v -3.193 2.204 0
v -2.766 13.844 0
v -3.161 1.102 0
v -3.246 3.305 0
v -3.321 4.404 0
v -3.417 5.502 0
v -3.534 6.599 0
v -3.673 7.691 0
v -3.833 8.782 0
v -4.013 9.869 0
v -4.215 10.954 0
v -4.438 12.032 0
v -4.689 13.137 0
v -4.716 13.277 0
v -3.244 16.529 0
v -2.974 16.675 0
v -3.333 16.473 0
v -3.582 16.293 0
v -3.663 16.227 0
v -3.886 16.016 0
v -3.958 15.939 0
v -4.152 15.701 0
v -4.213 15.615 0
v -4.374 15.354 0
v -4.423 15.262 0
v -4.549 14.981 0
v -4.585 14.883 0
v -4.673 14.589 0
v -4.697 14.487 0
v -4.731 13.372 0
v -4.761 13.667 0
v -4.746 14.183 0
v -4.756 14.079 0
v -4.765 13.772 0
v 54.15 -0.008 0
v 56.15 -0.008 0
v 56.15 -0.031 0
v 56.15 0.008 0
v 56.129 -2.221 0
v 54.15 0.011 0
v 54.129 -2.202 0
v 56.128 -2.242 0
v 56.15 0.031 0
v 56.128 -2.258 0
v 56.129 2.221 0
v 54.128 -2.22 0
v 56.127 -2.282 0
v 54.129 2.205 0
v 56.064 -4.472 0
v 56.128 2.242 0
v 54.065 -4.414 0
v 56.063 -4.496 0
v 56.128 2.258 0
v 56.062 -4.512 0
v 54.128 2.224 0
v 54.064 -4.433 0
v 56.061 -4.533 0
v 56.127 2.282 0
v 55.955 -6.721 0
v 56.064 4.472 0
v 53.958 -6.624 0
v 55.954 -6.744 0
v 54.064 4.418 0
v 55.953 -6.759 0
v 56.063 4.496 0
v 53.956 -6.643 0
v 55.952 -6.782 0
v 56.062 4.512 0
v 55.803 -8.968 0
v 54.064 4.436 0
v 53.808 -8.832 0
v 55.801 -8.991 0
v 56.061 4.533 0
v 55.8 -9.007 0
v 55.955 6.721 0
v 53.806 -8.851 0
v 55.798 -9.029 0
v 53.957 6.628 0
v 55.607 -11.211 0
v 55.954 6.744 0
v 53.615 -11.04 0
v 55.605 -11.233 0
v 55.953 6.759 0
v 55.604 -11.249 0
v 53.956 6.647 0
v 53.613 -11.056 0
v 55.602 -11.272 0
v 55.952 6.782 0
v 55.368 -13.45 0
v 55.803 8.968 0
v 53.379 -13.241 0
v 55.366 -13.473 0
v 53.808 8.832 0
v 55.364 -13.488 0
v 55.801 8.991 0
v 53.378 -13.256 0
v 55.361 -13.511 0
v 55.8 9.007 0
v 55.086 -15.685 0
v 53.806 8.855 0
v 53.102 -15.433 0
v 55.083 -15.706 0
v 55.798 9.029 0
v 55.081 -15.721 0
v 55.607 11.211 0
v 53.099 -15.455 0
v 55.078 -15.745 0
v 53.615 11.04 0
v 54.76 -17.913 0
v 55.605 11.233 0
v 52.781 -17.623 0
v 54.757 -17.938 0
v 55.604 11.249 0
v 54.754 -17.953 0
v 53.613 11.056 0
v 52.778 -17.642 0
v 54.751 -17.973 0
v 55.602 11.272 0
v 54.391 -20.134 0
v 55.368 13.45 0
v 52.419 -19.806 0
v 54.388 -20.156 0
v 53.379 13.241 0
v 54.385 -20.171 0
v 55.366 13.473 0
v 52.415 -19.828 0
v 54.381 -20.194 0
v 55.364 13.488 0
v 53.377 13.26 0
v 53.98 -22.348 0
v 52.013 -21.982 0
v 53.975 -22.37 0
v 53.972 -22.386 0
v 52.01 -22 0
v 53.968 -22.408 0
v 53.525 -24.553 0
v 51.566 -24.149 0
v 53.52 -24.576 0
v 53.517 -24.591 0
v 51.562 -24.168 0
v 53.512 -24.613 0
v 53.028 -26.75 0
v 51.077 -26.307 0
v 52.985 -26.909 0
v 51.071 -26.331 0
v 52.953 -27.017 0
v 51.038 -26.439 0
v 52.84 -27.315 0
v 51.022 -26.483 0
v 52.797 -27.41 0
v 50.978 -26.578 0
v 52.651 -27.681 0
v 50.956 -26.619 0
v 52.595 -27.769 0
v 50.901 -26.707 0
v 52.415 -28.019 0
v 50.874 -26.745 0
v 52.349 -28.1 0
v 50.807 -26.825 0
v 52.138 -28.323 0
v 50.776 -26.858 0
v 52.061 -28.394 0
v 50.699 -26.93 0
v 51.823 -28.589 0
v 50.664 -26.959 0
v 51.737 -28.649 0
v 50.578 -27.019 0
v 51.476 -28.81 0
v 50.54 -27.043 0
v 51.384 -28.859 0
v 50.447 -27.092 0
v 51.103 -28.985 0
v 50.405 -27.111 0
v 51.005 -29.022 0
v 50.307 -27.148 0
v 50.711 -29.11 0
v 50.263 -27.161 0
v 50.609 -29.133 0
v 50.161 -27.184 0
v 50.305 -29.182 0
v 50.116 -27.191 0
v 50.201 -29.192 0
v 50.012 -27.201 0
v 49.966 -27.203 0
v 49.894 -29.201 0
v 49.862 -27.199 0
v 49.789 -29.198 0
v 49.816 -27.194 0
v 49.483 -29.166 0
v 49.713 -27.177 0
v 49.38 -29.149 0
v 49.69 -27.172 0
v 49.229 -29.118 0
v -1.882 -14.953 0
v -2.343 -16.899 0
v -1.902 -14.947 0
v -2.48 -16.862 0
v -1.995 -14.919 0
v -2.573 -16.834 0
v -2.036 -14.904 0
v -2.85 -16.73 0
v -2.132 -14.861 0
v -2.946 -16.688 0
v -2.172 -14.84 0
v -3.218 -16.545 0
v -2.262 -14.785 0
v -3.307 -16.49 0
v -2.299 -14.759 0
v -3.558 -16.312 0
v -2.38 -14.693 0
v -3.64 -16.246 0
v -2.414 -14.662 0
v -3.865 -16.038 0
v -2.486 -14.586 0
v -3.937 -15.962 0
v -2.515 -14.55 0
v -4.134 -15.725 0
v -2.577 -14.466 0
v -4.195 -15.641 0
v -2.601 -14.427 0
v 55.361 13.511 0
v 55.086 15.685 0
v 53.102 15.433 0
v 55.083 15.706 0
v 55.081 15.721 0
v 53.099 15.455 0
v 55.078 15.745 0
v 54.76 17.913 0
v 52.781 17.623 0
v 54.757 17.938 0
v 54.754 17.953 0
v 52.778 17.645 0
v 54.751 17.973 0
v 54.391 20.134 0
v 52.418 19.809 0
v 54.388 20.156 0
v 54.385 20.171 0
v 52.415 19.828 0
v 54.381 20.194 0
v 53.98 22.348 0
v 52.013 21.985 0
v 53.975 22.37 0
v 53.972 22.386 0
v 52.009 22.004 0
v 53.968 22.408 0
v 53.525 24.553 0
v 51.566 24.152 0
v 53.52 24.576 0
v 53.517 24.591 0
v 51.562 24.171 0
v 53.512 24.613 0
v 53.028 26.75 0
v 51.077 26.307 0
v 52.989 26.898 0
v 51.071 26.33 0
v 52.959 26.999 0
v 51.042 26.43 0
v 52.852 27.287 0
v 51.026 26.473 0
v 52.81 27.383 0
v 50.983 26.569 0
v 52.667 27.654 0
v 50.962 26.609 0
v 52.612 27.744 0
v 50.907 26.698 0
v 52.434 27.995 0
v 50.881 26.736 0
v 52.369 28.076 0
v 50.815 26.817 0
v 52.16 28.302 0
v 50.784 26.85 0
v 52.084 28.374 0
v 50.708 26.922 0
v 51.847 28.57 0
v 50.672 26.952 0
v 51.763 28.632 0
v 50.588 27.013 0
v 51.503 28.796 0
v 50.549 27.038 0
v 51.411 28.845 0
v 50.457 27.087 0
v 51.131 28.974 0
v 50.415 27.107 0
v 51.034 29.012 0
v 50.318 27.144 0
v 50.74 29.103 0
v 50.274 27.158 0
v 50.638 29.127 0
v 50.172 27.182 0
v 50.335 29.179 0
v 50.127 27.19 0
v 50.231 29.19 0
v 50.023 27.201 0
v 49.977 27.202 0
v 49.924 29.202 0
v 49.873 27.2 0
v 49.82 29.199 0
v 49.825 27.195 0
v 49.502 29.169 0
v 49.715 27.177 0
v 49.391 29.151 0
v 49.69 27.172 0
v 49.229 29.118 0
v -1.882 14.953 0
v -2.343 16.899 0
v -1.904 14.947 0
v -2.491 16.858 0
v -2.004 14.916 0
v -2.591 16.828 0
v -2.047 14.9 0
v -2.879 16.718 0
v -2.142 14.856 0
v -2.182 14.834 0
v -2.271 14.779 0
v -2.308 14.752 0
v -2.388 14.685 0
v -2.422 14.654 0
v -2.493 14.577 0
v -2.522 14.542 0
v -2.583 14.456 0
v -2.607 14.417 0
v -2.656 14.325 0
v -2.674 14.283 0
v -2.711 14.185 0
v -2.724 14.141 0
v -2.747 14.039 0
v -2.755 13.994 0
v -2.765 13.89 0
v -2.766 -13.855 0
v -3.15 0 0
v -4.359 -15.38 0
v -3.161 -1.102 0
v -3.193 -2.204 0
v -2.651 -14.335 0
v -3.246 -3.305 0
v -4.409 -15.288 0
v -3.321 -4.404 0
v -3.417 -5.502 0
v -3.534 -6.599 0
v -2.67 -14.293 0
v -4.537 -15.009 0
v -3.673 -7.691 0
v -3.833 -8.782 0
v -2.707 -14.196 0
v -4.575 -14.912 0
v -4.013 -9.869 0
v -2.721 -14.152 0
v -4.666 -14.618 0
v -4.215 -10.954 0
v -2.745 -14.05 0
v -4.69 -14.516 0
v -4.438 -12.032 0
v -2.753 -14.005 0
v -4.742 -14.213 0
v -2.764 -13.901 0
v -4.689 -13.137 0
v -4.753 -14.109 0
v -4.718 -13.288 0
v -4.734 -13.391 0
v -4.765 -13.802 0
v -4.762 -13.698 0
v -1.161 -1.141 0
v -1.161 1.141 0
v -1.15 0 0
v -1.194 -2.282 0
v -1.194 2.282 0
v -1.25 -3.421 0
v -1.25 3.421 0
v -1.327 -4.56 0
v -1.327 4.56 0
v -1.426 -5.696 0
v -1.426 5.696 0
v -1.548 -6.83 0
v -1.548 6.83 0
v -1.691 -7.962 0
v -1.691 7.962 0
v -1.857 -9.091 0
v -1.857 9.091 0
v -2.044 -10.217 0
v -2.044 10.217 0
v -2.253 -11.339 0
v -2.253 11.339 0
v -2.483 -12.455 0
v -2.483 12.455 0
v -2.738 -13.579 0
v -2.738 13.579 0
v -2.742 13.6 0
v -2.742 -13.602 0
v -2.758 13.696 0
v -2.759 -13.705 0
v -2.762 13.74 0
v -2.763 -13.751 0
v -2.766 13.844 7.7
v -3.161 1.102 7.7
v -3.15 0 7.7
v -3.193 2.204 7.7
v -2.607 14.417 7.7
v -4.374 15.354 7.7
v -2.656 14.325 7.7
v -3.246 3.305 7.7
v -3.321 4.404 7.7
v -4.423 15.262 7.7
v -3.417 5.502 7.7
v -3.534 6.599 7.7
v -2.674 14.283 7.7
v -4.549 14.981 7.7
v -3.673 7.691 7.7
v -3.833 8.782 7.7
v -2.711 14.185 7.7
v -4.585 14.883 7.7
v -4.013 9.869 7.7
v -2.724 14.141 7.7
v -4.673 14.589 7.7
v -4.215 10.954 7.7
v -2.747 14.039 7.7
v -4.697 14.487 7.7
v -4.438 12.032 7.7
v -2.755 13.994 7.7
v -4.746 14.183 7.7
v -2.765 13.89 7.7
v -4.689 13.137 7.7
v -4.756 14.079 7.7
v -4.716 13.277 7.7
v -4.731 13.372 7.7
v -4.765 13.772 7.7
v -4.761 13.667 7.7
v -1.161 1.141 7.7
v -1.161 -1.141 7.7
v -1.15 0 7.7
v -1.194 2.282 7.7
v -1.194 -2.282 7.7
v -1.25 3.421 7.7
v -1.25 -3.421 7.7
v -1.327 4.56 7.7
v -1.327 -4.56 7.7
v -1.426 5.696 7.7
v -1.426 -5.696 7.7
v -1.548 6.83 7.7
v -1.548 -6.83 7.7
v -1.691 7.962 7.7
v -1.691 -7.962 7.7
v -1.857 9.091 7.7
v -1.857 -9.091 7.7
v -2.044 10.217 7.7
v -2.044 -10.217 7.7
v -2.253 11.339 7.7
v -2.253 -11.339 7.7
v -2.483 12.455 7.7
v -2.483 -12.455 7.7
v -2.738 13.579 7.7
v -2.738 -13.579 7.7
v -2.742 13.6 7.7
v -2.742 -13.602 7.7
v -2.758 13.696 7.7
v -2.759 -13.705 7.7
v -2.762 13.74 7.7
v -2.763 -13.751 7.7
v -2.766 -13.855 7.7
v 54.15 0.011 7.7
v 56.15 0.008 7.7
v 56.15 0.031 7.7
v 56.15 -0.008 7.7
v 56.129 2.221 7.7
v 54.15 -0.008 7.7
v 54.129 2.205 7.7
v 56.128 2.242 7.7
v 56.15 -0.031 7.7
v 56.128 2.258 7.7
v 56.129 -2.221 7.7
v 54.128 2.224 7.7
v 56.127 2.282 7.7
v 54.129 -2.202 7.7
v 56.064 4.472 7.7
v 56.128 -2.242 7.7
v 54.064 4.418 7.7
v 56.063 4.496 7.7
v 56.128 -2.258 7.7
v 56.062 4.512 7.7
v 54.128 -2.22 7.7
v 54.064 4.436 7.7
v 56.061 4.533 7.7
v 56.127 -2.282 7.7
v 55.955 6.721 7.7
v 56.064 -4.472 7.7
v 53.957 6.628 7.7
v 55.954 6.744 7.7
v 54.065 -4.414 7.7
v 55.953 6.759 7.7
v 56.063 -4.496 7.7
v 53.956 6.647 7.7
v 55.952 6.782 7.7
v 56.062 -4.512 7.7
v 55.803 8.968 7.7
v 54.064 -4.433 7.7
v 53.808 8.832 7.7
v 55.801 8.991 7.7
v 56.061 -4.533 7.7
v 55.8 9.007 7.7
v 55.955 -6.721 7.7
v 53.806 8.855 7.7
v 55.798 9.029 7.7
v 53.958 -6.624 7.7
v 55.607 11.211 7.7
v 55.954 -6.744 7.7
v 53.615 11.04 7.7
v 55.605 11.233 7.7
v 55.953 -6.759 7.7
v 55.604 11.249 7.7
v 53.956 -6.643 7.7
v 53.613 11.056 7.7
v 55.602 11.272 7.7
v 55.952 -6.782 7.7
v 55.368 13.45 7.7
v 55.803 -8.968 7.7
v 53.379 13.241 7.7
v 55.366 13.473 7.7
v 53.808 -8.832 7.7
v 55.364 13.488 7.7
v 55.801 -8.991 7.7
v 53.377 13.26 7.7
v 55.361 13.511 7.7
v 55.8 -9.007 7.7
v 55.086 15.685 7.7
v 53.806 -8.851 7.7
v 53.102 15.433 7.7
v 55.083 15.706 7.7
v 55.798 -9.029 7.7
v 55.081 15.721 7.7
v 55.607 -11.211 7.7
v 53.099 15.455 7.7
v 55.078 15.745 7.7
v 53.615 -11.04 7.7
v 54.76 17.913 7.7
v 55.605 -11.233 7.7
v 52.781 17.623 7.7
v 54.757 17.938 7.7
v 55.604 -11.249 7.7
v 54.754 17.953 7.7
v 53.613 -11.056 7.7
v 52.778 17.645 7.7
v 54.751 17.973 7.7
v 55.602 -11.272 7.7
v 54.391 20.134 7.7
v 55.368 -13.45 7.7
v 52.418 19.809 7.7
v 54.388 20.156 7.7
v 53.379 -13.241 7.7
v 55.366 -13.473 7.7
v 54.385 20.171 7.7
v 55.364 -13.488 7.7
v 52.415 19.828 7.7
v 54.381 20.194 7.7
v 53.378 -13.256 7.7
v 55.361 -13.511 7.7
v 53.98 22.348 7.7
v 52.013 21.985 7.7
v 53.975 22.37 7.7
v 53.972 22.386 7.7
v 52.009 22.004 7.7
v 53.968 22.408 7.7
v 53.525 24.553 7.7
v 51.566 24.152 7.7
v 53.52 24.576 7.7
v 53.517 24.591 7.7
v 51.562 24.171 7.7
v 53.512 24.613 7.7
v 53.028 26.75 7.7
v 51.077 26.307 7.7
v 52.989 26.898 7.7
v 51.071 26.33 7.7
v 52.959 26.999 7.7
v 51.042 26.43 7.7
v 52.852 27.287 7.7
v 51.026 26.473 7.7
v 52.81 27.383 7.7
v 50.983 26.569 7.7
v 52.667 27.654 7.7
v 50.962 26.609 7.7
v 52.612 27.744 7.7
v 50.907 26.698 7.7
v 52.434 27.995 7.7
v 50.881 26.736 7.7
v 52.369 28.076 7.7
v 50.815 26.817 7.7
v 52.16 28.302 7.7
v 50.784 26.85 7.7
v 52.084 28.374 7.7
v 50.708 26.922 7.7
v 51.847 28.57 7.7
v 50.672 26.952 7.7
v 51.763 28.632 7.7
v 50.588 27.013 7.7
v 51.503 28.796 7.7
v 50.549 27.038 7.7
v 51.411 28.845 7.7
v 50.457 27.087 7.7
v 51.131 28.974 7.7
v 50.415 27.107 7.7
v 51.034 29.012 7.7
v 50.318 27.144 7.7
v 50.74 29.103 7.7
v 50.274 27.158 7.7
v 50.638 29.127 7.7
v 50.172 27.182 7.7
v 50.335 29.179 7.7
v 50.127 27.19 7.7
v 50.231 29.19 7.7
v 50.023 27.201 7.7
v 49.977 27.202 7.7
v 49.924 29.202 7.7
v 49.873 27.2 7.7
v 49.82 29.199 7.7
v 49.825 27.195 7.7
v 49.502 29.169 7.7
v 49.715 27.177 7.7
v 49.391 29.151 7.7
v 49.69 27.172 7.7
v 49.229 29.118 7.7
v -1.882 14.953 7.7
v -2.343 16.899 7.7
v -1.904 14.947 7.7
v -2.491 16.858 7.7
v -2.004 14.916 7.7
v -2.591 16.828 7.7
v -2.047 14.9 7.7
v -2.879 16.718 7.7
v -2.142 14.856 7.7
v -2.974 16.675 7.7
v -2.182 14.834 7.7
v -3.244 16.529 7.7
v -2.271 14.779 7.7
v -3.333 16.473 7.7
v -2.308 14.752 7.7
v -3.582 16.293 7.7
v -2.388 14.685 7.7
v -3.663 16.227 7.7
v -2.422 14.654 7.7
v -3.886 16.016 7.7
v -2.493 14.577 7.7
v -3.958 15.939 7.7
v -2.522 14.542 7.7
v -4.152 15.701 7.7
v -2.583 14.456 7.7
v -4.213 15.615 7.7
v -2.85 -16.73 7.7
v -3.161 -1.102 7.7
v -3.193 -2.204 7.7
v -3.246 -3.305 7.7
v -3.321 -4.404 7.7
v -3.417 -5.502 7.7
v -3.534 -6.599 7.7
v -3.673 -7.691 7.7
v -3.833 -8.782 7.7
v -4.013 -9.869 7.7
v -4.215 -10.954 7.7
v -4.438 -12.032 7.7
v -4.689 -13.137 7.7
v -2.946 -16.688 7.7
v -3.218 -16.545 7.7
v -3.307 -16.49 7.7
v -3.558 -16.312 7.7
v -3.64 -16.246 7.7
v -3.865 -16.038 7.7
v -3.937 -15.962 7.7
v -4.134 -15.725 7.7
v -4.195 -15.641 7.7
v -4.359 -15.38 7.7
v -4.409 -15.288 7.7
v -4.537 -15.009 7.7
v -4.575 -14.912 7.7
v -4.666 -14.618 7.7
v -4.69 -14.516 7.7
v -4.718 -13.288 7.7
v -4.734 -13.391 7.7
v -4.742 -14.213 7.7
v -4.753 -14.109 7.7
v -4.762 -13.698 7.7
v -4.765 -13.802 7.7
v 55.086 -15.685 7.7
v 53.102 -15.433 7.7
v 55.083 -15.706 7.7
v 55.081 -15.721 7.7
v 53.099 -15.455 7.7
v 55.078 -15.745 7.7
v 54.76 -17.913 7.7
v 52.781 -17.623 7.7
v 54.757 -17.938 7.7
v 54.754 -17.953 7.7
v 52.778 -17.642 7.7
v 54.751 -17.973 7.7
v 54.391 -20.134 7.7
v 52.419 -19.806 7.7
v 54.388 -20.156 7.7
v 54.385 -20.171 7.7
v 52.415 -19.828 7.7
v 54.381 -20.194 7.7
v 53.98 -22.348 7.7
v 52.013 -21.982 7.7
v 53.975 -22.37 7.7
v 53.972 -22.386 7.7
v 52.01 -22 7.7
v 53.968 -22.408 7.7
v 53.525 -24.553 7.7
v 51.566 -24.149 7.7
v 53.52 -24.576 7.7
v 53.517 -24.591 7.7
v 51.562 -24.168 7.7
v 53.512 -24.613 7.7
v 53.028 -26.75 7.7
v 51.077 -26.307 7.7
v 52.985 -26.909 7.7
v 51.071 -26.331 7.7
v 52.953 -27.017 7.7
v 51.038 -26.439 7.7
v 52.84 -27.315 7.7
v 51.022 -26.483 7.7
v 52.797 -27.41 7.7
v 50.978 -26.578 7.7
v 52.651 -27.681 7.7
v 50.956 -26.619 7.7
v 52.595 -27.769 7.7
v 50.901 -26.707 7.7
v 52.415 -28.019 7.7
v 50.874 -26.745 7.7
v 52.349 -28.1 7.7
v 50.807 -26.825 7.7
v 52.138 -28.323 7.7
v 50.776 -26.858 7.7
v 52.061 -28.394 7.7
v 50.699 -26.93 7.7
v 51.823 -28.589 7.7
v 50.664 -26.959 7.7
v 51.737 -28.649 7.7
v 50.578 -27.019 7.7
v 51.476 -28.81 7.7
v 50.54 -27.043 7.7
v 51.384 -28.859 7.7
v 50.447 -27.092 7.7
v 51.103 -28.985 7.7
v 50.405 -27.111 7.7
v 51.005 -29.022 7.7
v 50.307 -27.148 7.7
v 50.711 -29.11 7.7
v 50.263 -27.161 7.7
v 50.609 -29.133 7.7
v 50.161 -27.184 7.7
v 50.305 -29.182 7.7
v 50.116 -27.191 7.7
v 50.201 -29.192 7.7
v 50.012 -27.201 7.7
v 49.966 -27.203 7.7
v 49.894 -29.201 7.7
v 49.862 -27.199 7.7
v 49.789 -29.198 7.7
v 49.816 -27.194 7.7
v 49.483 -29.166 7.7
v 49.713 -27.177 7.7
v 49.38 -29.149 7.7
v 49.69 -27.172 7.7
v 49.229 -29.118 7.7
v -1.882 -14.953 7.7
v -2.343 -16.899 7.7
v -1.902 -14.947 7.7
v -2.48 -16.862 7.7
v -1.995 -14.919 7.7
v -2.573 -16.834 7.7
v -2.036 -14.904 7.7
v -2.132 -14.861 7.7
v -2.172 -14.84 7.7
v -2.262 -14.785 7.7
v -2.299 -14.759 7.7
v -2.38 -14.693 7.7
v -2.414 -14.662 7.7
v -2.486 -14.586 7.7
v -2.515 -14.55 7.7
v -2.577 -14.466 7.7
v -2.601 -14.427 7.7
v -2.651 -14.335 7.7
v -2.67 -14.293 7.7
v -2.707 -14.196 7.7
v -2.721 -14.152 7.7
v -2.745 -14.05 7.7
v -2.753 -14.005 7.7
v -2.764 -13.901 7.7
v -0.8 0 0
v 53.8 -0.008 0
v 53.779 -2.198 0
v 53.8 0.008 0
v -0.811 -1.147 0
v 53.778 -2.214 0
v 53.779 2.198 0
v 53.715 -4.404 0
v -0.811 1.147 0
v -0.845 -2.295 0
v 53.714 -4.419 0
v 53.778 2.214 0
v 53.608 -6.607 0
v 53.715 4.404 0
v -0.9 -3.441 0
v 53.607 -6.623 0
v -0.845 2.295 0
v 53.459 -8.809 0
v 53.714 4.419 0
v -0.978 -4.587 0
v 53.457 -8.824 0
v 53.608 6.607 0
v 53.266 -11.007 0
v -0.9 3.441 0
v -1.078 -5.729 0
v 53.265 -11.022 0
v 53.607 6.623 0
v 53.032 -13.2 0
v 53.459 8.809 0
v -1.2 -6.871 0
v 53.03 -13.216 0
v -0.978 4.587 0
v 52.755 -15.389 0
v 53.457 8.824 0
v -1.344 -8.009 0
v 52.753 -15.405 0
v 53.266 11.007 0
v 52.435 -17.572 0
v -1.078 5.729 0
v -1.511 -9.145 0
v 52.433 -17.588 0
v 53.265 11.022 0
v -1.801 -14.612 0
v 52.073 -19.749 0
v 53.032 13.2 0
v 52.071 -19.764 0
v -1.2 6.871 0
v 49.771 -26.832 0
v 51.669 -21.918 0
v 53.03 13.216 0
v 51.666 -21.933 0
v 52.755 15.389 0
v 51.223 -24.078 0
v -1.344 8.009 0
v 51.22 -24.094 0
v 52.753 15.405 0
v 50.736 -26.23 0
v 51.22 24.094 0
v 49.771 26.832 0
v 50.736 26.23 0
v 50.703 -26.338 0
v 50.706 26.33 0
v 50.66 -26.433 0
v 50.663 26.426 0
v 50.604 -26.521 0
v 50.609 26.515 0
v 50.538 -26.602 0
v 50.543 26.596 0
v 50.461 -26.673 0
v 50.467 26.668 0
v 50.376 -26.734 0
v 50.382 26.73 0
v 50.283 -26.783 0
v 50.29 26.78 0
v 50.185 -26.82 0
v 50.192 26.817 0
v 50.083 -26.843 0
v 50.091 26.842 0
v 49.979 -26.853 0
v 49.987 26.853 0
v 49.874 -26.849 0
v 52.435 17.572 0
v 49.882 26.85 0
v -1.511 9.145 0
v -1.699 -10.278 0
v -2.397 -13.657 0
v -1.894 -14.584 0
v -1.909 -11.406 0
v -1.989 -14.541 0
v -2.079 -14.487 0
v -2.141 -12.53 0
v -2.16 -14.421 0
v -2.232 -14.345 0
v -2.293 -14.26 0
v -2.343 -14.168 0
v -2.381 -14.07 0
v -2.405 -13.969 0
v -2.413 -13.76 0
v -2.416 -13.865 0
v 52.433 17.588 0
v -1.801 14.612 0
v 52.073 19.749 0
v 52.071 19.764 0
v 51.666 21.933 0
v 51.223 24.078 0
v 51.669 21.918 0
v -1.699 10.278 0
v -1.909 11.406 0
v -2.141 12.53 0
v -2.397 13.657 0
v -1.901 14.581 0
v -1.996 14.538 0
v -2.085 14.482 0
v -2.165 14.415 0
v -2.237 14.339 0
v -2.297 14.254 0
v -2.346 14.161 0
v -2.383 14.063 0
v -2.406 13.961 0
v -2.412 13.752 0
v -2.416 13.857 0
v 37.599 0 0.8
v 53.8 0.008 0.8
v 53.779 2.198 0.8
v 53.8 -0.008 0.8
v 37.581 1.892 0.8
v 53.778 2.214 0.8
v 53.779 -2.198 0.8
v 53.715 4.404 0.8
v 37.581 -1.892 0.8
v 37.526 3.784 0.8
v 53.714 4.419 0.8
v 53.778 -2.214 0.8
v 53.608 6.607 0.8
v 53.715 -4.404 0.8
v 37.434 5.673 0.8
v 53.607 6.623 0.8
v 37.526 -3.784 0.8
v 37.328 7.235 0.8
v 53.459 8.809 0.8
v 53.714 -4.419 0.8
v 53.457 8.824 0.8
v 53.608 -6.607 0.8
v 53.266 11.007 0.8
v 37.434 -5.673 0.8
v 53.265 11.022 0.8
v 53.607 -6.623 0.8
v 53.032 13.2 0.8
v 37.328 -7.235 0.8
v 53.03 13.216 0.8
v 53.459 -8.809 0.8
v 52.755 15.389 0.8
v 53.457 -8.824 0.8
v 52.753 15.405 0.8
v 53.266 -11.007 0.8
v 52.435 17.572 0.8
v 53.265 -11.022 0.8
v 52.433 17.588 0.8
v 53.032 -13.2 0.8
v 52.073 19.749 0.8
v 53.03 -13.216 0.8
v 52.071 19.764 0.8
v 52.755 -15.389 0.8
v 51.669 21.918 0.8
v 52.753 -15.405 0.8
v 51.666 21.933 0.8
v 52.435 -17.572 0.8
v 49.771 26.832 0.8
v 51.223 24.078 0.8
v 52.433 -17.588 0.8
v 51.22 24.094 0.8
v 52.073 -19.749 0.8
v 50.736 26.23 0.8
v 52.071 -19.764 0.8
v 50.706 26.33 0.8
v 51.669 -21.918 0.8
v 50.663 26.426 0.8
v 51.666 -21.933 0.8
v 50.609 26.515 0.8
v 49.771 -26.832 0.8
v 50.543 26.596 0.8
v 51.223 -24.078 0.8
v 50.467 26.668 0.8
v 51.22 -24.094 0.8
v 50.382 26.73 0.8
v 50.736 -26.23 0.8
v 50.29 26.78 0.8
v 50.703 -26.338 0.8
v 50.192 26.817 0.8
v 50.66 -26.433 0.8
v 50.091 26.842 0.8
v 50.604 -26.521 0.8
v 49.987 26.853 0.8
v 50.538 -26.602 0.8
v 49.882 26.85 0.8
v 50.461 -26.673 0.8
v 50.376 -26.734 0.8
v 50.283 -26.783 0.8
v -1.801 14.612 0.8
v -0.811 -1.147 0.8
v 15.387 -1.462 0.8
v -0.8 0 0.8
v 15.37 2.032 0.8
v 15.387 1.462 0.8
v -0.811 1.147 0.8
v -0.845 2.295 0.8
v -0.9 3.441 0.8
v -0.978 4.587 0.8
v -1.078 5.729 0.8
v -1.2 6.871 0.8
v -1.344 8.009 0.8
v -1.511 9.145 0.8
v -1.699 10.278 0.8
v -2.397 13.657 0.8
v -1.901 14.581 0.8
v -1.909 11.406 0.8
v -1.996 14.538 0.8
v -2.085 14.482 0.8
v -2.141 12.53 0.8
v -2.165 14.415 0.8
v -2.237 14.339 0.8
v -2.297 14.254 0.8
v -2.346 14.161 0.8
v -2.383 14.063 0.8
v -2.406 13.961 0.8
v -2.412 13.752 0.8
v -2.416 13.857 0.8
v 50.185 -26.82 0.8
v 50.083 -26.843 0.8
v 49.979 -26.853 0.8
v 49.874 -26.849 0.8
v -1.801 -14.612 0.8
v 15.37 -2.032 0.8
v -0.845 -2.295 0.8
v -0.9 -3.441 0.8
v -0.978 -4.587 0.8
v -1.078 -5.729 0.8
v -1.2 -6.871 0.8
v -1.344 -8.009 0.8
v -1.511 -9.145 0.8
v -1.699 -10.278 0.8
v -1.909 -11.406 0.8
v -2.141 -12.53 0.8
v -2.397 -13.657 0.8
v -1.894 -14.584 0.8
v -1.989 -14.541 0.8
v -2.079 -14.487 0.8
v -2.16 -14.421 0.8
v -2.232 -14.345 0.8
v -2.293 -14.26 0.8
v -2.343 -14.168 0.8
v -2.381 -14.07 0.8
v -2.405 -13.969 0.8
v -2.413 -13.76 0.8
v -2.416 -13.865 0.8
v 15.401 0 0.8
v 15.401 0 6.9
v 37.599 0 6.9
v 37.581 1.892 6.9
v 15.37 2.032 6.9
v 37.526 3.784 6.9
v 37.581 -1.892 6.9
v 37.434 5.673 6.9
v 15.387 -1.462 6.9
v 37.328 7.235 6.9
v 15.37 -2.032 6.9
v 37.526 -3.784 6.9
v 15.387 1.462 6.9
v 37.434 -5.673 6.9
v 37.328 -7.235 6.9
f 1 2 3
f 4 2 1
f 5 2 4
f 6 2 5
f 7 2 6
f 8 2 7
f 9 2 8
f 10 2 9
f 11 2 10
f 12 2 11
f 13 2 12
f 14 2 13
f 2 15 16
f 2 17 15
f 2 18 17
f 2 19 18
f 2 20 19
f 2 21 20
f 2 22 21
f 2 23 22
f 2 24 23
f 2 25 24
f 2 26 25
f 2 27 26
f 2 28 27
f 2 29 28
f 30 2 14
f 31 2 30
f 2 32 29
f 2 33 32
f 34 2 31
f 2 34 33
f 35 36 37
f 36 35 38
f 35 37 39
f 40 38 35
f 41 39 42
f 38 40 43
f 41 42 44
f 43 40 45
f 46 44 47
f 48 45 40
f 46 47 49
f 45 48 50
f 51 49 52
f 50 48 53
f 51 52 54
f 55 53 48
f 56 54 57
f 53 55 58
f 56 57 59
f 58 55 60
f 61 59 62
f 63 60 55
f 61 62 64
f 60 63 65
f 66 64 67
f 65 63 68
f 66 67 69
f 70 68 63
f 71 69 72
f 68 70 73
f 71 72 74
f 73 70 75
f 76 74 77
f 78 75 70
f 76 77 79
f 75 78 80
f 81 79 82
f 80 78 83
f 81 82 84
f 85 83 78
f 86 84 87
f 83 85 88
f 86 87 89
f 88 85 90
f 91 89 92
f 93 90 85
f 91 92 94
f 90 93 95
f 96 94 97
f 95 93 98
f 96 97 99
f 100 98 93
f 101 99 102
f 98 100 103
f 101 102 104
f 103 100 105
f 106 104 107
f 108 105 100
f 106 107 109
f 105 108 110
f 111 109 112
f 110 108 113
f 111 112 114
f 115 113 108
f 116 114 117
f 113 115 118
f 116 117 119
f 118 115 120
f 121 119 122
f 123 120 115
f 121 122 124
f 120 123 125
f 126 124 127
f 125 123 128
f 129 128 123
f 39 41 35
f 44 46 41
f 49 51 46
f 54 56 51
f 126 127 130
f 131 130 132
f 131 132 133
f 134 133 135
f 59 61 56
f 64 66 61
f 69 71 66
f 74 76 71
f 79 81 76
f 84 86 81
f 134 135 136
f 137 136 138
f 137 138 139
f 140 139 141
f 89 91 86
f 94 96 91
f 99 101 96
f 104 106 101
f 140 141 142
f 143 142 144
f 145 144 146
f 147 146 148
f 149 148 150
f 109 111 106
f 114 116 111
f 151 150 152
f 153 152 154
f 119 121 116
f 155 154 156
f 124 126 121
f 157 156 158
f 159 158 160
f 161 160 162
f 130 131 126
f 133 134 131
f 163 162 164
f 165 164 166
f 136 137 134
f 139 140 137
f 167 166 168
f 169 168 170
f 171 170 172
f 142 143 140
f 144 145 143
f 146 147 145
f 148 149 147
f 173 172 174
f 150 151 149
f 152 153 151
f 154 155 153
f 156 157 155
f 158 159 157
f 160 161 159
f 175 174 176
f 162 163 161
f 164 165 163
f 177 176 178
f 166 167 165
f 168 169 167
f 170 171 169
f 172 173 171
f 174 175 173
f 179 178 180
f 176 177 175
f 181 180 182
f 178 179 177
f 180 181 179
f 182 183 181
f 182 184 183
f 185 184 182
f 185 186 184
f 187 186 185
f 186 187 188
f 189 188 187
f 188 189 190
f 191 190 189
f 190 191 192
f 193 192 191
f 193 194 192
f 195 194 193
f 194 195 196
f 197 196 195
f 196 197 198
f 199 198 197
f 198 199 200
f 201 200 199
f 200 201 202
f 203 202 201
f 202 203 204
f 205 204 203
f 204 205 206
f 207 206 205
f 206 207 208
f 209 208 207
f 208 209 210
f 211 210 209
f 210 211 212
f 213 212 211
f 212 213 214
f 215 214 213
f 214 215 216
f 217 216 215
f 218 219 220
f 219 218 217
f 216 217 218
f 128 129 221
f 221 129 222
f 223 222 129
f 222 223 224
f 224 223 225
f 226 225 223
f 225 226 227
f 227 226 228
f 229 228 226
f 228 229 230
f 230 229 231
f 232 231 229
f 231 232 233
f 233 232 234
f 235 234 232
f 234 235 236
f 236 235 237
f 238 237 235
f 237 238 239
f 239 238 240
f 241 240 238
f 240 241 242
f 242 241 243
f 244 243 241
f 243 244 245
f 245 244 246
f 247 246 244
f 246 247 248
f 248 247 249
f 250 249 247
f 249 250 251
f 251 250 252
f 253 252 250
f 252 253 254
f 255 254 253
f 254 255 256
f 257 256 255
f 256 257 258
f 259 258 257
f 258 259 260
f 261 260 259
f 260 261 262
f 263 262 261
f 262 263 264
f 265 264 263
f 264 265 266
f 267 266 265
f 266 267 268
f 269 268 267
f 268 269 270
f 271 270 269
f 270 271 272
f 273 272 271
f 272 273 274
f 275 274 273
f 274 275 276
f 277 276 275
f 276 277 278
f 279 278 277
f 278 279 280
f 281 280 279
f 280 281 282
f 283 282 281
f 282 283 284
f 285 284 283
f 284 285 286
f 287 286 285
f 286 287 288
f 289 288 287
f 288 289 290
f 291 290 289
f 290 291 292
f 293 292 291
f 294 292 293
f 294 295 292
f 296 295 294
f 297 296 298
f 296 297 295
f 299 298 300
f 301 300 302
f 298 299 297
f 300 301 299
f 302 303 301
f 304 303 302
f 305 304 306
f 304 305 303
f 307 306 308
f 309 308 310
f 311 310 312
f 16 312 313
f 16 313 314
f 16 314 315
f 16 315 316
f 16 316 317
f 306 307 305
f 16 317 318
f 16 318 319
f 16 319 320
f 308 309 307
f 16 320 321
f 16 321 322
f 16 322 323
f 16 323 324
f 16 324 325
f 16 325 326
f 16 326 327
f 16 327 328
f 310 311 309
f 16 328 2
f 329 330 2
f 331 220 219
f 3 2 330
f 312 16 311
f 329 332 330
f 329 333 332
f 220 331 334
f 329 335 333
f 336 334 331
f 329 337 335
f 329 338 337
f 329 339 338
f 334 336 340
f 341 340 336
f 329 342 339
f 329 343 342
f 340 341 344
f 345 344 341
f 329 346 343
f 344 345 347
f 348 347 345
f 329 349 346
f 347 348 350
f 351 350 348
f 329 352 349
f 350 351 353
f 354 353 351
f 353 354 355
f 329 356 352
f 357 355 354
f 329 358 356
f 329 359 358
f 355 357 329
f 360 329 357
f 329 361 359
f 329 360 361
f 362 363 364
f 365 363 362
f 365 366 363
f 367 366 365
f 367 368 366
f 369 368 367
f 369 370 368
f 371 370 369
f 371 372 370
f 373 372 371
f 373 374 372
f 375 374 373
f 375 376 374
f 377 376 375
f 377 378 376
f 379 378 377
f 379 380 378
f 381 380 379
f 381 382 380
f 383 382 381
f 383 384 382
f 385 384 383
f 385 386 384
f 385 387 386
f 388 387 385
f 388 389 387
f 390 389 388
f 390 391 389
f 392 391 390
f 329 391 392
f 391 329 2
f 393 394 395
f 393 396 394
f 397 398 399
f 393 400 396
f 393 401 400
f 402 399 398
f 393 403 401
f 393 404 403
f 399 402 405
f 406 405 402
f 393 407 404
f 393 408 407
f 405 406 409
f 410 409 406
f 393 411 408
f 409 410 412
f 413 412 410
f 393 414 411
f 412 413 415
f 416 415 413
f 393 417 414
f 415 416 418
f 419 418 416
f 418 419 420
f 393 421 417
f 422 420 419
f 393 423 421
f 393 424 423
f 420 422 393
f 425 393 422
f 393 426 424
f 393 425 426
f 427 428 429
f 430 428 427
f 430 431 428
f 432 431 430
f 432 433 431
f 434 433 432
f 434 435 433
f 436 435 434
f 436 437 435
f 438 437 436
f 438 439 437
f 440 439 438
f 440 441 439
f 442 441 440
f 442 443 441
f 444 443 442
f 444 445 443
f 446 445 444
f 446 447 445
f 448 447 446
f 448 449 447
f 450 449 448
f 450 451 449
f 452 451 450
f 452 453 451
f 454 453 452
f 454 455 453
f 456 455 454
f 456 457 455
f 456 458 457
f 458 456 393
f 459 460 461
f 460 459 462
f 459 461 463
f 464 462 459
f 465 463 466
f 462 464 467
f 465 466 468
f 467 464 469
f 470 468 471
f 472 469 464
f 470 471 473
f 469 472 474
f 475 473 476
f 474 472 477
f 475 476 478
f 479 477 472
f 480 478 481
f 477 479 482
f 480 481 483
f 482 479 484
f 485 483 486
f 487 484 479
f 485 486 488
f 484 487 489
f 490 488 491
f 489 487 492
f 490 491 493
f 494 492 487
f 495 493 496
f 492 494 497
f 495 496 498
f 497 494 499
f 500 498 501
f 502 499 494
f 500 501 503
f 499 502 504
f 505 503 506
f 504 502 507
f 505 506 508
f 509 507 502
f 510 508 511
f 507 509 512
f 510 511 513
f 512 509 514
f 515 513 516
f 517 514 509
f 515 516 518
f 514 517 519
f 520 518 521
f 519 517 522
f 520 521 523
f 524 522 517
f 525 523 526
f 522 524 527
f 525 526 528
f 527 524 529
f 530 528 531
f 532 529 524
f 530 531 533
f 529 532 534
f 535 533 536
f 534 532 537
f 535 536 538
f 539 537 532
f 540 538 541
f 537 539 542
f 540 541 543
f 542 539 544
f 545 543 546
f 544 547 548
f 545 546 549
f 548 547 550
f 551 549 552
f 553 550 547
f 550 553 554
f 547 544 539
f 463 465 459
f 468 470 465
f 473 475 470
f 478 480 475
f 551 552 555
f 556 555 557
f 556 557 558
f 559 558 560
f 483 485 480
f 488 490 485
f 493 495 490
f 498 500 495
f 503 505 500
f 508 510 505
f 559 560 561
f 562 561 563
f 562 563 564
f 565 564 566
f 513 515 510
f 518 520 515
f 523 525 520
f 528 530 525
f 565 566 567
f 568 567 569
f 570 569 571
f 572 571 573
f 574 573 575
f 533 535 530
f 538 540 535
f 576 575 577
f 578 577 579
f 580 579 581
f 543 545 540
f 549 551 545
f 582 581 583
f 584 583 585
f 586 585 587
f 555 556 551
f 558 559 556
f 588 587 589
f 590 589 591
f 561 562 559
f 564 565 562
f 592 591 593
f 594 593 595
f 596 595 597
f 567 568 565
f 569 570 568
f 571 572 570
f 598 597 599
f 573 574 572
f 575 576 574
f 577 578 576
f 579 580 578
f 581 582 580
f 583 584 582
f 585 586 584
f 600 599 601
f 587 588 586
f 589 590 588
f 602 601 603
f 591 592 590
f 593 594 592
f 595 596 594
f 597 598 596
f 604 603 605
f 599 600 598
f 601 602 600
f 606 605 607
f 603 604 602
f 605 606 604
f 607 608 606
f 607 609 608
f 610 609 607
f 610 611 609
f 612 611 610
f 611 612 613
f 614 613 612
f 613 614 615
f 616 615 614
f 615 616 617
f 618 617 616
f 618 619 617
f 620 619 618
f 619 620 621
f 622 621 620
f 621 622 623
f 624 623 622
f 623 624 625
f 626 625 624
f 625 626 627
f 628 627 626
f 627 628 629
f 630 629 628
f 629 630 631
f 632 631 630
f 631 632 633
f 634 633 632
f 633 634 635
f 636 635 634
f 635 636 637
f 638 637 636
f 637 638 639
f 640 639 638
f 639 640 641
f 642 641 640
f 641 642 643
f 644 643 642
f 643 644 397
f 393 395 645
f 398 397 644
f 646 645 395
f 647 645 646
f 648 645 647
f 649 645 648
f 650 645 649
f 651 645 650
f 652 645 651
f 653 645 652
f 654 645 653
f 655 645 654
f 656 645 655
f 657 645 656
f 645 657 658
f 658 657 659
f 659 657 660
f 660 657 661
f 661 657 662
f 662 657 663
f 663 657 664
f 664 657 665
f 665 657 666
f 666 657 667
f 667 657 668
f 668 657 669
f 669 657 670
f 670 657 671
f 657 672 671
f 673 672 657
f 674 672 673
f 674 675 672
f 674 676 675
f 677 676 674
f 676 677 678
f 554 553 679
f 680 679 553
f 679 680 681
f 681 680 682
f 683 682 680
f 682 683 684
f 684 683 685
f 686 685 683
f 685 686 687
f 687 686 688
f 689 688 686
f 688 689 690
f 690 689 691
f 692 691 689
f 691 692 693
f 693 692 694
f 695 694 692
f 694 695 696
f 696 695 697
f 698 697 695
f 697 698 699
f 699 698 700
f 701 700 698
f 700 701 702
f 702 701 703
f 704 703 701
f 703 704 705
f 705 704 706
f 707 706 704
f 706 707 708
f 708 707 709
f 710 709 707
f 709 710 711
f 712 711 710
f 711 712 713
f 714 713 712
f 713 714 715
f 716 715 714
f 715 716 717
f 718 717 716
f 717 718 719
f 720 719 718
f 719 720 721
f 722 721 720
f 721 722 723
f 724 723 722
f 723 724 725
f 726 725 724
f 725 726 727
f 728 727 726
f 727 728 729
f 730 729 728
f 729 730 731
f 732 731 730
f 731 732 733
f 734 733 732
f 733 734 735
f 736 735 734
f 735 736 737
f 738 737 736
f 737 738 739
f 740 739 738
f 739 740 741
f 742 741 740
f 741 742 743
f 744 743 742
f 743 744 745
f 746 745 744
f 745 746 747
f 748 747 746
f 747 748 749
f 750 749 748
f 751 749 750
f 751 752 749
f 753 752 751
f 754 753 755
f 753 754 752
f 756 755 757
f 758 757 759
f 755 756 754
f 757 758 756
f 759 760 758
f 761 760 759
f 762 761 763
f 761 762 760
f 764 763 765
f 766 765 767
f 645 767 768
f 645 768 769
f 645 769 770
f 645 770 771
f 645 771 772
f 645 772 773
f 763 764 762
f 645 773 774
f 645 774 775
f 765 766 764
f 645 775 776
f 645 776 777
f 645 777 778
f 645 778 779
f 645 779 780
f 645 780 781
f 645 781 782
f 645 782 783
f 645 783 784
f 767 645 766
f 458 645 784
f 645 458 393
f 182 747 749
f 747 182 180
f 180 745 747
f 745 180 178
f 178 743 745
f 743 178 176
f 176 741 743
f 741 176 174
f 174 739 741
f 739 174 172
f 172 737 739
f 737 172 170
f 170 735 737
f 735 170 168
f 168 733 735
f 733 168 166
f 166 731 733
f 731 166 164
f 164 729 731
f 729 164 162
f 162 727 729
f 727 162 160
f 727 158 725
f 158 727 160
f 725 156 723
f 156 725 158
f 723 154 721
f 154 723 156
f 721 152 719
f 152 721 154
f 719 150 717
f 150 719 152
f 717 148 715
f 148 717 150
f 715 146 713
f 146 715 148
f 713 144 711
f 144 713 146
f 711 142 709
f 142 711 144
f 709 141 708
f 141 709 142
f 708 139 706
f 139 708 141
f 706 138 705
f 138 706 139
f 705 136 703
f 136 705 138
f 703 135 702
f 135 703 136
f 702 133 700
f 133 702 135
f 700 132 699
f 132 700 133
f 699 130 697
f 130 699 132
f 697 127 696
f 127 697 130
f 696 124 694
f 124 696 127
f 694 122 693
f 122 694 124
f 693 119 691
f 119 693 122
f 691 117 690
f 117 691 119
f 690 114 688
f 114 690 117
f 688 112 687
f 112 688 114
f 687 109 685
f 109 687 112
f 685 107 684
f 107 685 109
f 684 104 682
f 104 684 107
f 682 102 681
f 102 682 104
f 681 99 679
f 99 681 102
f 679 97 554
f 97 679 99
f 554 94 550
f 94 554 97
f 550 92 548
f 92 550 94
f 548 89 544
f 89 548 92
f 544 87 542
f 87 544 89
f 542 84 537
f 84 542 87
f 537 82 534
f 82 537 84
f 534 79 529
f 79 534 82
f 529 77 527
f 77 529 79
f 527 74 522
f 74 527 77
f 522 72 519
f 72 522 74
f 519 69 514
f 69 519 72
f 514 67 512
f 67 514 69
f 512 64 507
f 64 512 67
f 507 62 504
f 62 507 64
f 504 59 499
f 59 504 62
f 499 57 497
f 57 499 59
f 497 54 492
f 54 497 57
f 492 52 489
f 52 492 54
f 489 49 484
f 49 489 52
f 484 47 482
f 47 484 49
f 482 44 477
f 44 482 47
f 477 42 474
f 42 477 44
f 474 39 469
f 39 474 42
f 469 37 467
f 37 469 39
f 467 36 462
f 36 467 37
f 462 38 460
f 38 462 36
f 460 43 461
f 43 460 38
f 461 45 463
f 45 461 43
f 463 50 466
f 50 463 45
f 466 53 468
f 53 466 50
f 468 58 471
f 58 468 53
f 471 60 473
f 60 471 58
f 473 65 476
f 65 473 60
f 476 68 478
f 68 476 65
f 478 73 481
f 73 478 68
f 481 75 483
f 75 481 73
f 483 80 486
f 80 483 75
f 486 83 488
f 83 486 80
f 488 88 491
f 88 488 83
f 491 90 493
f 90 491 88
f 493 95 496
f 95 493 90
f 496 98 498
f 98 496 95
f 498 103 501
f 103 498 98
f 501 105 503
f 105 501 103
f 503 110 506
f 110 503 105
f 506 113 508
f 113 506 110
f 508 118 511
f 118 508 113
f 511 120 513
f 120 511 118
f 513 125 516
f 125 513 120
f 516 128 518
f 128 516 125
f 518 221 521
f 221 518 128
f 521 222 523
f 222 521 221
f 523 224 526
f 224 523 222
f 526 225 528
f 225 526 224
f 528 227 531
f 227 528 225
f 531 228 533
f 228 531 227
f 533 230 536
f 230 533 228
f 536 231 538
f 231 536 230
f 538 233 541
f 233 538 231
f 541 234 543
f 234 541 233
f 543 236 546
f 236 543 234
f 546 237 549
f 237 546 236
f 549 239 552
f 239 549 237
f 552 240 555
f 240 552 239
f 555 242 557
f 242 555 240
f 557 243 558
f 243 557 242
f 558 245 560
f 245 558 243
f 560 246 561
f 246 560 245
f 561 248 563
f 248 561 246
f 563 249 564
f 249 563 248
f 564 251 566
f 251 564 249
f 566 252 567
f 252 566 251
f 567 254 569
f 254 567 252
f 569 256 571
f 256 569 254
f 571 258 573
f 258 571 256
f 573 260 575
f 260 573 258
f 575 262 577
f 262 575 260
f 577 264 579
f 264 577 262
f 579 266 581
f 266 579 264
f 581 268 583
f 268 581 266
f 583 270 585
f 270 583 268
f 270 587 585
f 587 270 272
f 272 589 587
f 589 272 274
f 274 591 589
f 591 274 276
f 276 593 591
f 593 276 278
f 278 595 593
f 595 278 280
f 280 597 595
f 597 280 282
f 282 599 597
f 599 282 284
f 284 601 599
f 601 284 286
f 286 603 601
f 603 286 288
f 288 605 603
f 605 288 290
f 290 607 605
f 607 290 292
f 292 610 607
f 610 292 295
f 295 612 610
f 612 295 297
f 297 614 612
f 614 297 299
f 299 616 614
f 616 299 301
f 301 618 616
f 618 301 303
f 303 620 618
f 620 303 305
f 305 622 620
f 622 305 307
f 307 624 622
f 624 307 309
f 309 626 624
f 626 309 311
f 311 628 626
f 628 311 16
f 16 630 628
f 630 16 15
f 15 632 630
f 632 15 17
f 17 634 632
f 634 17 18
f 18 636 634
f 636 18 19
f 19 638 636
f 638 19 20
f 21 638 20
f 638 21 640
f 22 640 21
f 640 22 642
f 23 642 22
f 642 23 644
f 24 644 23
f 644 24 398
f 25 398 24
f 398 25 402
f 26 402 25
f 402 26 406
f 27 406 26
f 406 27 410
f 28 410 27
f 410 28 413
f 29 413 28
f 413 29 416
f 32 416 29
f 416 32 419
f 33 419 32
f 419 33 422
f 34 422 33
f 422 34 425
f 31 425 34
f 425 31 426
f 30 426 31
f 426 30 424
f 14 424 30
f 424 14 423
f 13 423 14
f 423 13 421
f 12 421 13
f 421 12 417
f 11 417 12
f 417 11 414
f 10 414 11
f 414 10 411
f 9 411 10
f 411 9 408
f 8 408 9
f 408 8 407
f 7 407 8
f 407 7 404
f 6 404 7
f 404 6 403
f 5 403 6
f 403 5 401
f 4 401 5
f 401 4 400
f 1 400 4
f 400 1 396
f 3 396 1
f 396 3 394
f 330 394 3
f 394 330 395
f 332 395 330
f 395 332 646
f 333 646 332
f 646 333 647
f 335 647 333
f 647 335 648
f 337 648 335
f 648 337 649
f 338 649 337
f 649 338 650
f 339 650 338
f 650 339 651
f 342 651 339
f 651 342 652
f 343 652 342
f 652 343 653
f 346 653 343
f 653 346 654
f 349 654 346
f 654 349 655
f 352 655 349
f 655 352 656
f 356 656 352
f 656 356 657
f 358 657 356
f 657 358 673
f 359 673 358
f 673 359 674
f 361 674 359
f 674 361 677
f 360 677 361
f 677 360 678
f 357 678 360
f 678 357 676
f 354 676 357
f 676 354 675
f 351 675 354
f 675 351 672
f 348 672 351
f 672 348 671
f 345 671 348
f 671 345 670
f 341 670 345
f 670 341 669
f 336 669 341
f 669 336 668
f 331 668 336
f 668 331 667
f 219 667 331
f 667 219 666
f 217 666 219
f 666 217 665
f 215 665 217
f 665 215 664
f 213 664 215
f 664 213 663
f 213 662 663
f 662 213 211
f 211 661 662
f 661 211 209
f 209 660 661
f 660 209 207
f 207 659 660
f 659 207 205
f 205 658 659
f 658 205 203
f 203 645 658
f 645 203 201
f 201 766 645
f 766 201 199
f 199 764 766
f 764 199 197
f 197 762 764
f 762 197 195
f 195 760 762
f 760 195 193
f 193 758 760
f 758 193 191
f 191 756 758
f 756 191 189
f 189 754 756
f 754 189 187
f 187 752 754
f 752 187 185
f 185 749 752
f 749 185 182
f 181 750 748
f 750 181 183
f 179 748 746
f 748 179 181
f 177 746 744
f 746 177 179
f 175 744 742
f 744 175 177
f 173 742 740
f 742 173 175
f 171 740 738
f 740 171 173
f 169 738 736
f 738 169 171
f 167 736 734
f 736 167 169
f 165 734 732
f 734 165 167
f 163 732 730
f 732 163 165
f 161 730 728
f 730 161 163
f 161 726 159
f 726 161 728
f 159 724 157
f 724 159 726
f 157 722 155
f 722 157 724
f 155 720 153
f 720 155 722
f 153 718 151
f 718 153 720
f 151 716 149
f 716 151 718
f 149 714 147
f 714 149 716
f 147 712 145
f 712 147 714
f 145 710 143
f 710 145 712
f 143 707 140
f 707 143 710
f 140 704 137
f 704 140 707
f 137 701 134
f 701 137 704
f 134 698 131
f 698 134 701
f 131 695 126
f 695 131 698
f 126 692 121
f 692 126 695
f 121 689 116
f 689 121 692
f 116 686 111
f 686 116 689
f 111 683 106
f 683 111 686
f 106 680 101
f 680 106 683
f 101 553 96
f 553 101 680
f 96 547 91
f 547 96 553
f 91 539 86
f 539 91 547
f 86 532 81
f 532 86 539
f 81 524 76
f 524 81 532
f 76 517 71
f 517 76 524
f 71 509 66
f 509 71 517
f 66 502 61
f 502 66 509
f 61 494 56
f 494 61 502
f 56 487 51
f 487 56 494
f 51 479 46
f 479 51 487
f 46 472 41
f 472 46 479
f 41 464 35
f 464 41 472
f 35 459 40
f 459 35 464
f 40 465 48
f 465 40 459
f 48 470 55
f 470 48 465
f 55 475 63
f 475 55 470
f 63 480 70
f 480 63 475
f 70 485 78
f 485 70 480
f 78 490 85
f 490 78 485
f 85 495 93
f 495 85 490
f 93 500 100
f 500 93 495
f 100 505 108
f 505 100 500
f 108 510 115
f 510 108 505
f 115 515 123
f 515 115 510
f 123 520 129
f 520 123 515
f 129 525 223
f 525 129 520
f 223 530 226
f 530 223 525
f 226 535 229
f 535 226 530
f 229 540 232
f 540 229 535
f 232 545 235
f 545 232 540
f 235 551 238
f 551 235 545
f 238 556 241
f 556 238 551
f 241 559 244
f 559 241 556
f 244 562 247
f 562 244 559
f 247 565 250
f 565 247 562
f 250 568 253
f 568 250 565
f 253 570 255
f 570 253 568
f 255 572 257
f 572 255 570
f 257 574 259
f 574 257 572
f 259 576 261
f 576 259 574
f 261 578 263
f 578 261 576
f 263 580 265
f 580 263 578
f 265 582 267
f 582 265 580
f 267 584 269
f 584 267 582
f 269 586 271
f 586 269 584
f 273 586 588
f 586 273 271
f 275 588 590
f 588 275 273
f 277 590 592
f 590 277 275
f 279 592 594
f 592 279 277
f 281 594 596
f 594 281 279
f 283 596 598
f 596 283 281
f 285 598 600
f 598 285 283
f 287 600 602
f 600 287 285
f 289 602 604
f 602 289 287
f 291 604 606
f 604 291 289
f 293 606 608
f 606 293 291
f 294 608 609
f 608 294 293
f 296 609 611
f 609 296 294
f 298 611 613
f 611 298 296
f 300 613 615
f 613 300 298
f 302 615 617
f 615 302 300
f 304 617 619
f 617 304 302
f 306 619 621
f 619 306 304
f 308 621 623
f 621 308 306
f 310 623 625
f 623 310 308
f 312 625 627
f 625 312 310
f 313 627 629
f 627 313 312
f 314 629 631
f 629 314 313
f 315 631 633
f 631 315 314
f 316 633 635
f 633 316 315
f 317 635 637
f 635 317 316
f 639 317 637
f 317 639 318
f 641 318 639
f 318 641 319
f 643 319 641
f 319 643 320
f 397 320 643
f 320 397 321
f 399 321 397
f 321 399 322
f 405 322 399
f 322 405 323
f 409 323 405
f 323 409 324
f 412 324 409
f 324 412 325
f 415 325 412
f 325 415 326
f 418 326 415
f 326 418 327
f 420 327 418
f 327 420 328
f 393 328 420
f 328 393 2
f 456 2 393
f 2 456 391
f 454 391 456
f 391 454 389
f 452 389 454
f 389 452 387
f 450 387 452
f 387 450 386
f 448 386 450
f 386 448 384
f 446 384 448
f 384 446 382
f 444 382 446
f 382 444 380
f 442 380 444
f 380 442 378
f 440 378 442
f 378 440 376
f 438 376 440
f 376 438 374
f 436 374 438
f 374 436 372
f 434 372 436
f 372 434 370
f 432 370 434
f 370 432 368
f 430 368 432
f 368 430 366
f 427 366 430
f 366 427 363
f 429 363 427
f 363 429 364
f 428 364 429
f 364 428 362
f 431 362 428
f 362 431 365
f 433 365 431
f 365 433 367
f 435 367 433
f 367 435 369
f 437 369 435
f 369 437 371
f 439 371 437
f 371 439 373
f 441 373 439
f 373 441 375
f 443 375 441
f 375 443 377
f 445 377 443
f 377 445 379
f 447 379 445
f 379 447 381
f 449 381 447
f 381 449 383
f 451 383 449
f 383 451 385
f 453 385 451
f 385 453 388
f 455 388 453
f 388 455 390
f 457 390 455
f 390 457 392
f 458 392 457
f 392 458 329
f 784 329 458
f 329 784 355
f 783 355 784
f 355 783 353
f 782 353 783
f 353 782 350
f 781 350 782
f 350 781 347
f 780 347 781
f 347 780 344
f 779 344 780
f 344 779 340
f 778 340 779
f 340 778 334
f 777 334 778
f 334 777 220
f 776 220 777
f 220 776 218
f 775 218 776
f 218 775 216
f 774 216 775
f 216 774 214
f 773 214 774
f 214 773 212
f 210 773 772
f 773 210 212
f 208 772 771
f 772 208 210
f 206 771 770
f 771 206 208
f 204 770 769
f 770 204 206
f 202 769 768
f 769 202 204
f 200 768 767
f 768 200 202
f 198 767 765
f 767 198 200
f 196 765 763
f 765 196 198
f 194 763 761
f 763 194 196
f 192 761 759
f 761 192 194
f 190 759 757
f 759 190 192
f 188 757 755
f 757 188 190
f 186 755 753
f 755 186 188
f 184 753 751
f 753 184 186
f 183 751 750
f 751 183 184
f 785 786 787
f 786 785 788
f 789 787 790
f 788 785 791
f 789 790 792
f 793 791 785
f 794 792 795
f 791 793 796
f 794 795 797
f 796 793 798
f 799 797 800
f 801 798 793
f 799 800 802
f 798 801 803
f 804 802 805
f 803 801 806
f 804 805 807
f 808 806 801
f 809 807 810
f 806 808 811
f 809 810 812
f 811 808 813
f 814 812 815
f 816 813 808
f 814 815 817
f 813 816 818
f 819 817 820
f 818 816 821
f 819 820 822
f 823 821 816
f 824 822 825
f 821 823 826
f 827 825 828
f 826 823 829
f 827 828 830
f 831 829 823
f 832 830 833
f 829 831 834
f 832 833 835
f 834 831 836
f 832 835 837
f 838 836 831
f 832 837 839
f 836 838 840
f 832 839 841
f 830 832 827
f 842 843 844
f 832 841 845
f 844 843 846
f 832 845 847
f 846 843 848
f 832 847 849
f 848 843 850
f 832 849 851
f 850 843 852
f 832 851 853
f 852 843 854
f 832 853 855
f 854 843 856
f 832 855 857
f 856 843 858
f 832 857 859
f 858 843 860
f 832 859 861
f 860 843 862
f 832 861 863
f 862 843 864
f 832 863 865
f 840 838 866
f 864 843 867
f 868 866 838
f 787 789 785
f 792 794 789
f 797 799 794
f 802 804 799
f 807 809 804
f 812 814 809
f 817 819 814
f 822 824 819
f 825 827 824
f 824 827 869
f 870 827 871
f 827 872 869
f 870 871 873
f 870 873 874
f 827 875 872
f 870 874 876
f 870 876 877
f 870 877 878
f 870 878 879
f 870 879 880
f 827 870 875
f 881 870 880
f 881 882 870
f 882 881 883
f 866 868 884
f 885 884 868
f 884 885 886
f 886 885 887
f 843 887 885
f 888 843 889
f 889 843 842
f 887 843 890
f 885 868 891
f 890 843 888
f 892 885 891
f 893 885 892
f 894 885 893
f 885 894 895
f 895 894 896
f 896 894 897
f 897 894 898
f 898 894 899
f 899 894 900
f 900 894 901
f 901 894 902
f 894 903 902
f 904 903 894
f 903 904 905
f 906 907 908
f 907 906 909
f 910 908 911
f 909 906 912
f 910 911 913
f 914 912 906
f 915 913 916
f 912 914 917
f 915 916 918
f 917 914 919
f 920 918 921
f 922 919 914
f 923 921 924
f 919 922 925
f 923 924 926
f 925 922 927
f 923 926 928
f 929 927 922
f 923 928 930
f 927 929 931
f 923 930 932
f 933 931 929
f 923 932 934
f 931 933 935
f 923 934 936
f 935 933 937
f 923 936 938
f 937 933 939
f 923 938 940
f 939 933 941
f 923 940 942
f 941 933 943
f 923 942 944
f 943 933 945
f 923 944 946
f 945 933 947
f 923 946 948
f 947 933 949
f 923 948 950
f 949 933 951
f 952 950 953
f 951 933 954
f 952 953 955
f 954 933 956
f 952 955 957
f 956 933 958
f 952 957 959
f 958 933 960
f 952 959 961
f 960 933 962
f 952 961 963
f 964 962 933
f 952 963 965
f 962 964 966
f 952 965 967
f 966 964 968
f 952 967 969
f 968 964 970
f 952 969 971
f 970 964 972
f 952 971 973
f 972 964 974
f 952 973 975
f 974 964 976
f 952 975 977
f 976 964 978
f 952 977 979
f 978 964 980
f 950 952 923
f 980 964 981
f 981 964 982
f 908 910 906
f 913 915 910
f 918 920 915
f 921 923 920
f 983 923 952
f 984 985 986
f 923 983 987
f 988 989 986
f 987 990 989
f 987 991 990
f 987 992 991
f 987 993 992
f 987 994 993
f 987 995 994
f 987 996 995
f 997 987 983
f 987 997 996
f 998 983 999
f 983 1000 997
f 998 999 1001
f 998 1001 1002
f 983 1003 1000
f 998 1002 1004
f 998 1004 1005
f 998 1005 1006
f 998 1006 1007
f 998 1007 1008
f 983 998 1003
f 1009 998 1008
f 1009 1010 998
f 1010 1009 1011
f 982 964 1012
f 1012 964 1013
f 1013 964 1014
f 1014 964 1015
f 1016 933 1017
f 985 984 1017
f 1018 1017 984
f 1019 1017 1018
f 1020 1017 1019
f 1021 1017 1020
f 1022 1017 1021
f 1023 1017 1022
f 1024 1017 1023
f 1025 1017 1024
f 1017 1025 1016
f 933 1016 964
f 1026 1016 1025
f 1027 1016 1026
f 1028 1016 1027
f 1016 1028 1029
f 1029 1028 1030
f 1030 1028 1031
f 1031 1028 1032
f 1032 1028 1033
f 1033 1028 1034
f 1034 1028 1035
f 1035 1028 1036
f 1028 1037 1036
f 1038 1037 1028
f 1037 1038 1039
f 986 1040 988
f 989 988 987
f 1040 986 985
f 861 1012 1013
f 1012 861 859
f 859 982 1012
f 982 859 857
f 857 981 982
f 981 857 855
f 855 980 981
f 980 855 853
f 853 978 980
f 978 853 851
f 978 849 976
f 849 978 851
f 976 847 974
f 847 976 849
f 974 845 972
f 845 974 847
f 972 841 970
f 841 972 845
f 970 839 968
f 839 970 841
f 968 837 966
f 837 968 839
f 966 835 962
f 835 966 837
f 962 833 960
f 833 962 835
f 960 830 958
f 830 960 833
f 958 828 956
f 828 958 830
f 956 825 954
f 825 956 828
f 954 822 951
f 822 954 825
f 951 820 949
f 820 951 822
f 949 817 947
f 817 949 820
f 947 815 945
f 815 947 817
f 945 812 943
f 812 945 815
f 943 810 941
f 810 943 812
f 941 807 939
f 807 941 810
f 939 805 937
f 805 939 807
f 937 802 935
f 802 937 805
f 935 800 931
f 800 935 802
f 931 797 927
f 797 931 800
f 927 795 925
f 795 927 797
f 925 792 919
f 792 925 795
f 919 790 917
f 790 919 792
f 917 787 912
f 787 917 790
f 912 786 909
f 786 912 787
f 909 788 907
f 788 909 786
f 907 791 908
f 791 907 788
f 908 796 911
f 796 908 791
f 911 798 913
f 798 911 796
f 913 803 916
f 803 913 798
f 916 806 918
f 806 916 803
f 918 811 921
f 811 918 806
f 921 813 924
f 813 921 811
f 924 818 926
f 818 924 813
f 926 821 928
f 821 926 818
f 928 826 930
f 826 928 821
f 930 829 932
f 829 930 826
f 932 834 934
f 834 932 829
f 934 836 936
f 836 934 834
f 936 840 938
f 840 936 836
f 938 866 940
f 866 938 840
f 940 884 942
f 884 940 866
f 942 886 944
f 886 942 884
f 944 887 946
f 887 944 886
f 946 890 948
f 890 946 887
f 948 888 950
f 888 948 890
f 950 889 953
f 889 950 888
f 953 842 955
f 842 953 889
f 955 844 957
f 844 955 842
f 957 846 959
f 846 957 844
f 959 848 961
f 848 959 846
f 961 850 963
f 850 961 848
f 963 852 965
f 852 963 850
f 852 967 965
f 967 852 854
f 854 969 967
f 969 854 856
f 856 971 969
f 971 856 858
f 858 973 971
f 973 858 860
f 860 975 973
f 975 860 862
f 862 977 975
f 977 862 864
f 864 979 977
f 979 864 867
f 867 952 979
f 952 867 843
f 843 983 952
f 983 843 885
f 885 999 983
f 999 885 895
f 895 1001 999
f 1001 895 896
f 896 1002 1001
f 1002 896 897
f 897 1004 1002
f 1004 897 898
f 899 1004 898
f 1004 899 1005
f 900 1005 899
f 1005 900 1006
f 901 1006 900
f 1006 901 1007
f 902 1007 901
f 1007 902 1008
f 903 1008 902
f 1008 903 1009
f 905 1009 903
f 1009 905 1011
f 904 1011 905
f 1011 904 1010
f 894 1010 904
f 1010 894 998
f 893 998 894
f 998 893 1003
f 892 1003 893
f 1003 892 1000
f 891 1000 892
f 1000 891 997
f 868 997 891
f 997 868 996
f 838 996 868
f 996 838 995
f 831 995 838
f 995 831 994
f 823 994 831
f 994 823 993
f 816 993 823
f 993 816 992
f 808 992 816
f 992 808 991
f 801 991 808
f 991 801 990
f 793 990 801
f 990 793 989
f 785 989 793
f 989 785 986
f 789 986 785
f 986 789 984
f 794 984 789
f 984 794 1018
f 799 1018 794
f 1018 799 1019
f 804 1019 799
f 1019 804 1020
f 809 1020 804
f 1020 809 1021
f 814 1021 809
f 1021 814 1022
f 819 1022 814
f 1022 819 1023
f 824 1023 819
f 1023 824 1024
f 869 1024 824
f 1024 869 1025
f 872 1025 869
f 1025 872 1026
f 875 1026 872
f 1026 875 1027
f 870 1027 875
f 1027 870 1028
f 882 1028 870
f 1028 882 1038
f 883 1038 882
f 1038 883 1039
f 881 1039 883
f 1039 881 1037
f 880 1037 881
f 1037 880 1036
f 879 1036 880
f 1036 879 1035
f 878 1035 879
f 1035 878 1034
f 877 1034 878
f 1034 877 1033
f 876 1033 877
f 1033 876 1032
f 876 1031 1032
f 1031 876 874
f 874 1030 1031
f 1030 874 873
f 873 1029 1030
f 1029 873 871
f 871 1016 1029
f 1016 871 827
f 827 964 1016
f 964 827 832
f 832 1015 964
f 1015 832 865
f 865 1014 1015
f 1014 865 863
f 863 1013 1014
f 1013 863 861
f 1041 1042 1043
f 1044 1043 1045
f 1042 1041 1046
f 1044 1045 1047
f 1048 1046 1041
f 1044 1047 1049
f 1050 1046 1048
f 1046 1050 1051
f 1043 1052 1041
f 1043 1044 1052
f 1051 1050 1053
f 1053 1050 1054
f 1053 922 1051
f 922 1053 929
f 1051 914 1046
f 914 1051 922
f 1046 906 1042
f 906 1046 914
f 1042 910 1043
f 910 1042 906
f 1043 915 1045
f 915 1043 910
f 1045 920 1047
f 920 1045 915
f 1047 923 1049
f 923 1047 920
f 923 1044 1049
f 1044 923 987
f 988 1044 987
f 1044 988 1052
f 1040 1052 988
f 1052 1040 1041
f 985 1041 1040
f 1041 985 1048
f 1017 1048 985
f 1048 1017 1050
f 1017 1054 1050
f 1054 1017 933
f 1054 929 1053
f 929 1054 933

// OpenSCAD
// Gen-DB — fit coupon (bay part): O20/O5 THROUGH pockets at carrier thickness (test on a steel offcut), 608 seat,
// D-flat bore, gap shim, and one bobbin-bay slice (bobbin footprint + bay_clear) to test former fit.
include <parameters.scad>;
$fn = 48;
// D-flat keyed bore: flat faces +X (angle 0 = magnet pocket 0 = index notch)
module dflat_bore(h) {
    intersection() {
        cylinder(d=shaft_bore, h=h);
        translate([-shaft_bore, -shaft_bore, 0]) cube([shaft_bore + dflat_x, 2*shaft_bore, h]);
    }
}
module sector_2d(r_in, r_out, ang) {
    polygon([
        for (a = [-ang/2 : ang/24 : ang/2]) [r_in*cos(a), r_in*sin(a)],
        for (a = [ang/2 : -ang/24 : -ang/2]) [r_out*cos(a), r_out*sin(a)]
    ]);
}
module footprint_2d() { offset(r=wall) sector_2d(coil_id_r, coil_od_r, span_deg); }
module hub_2d()       { offset(delta=-coil_core_inset) sector_2d(coil_id_r, coil_od_r, span_deg); }

// bay slice at FULL stator thickness with one bobbin BASE printed IN PLACE inside it (bay_clear gap): this is the
// print-in-place test for the one-plate stator. After printing, the base must pop out with finger pressure; if it is fused,
// print coil_former.stl separately (print-packs/parts/) instead of using the in-place bases.
translate([-coil_id_r, 0, 0]) {
    difference() {
        linear_extrude(stator_thick) offset(r=bay_clear + 2) footprint_2d();
        translate([0, 0, -0.1]) linear_extrude(stator_thick + 0.2) offset(r=bay_clear) footprint_2d();
    }
    union() {
        linear_extrude(flange_t) footprint_2d();
        translate([0, 0, flange_t - 0.01]) linear_extrude(former_web + 0.01) hub_2d();
    }
}
